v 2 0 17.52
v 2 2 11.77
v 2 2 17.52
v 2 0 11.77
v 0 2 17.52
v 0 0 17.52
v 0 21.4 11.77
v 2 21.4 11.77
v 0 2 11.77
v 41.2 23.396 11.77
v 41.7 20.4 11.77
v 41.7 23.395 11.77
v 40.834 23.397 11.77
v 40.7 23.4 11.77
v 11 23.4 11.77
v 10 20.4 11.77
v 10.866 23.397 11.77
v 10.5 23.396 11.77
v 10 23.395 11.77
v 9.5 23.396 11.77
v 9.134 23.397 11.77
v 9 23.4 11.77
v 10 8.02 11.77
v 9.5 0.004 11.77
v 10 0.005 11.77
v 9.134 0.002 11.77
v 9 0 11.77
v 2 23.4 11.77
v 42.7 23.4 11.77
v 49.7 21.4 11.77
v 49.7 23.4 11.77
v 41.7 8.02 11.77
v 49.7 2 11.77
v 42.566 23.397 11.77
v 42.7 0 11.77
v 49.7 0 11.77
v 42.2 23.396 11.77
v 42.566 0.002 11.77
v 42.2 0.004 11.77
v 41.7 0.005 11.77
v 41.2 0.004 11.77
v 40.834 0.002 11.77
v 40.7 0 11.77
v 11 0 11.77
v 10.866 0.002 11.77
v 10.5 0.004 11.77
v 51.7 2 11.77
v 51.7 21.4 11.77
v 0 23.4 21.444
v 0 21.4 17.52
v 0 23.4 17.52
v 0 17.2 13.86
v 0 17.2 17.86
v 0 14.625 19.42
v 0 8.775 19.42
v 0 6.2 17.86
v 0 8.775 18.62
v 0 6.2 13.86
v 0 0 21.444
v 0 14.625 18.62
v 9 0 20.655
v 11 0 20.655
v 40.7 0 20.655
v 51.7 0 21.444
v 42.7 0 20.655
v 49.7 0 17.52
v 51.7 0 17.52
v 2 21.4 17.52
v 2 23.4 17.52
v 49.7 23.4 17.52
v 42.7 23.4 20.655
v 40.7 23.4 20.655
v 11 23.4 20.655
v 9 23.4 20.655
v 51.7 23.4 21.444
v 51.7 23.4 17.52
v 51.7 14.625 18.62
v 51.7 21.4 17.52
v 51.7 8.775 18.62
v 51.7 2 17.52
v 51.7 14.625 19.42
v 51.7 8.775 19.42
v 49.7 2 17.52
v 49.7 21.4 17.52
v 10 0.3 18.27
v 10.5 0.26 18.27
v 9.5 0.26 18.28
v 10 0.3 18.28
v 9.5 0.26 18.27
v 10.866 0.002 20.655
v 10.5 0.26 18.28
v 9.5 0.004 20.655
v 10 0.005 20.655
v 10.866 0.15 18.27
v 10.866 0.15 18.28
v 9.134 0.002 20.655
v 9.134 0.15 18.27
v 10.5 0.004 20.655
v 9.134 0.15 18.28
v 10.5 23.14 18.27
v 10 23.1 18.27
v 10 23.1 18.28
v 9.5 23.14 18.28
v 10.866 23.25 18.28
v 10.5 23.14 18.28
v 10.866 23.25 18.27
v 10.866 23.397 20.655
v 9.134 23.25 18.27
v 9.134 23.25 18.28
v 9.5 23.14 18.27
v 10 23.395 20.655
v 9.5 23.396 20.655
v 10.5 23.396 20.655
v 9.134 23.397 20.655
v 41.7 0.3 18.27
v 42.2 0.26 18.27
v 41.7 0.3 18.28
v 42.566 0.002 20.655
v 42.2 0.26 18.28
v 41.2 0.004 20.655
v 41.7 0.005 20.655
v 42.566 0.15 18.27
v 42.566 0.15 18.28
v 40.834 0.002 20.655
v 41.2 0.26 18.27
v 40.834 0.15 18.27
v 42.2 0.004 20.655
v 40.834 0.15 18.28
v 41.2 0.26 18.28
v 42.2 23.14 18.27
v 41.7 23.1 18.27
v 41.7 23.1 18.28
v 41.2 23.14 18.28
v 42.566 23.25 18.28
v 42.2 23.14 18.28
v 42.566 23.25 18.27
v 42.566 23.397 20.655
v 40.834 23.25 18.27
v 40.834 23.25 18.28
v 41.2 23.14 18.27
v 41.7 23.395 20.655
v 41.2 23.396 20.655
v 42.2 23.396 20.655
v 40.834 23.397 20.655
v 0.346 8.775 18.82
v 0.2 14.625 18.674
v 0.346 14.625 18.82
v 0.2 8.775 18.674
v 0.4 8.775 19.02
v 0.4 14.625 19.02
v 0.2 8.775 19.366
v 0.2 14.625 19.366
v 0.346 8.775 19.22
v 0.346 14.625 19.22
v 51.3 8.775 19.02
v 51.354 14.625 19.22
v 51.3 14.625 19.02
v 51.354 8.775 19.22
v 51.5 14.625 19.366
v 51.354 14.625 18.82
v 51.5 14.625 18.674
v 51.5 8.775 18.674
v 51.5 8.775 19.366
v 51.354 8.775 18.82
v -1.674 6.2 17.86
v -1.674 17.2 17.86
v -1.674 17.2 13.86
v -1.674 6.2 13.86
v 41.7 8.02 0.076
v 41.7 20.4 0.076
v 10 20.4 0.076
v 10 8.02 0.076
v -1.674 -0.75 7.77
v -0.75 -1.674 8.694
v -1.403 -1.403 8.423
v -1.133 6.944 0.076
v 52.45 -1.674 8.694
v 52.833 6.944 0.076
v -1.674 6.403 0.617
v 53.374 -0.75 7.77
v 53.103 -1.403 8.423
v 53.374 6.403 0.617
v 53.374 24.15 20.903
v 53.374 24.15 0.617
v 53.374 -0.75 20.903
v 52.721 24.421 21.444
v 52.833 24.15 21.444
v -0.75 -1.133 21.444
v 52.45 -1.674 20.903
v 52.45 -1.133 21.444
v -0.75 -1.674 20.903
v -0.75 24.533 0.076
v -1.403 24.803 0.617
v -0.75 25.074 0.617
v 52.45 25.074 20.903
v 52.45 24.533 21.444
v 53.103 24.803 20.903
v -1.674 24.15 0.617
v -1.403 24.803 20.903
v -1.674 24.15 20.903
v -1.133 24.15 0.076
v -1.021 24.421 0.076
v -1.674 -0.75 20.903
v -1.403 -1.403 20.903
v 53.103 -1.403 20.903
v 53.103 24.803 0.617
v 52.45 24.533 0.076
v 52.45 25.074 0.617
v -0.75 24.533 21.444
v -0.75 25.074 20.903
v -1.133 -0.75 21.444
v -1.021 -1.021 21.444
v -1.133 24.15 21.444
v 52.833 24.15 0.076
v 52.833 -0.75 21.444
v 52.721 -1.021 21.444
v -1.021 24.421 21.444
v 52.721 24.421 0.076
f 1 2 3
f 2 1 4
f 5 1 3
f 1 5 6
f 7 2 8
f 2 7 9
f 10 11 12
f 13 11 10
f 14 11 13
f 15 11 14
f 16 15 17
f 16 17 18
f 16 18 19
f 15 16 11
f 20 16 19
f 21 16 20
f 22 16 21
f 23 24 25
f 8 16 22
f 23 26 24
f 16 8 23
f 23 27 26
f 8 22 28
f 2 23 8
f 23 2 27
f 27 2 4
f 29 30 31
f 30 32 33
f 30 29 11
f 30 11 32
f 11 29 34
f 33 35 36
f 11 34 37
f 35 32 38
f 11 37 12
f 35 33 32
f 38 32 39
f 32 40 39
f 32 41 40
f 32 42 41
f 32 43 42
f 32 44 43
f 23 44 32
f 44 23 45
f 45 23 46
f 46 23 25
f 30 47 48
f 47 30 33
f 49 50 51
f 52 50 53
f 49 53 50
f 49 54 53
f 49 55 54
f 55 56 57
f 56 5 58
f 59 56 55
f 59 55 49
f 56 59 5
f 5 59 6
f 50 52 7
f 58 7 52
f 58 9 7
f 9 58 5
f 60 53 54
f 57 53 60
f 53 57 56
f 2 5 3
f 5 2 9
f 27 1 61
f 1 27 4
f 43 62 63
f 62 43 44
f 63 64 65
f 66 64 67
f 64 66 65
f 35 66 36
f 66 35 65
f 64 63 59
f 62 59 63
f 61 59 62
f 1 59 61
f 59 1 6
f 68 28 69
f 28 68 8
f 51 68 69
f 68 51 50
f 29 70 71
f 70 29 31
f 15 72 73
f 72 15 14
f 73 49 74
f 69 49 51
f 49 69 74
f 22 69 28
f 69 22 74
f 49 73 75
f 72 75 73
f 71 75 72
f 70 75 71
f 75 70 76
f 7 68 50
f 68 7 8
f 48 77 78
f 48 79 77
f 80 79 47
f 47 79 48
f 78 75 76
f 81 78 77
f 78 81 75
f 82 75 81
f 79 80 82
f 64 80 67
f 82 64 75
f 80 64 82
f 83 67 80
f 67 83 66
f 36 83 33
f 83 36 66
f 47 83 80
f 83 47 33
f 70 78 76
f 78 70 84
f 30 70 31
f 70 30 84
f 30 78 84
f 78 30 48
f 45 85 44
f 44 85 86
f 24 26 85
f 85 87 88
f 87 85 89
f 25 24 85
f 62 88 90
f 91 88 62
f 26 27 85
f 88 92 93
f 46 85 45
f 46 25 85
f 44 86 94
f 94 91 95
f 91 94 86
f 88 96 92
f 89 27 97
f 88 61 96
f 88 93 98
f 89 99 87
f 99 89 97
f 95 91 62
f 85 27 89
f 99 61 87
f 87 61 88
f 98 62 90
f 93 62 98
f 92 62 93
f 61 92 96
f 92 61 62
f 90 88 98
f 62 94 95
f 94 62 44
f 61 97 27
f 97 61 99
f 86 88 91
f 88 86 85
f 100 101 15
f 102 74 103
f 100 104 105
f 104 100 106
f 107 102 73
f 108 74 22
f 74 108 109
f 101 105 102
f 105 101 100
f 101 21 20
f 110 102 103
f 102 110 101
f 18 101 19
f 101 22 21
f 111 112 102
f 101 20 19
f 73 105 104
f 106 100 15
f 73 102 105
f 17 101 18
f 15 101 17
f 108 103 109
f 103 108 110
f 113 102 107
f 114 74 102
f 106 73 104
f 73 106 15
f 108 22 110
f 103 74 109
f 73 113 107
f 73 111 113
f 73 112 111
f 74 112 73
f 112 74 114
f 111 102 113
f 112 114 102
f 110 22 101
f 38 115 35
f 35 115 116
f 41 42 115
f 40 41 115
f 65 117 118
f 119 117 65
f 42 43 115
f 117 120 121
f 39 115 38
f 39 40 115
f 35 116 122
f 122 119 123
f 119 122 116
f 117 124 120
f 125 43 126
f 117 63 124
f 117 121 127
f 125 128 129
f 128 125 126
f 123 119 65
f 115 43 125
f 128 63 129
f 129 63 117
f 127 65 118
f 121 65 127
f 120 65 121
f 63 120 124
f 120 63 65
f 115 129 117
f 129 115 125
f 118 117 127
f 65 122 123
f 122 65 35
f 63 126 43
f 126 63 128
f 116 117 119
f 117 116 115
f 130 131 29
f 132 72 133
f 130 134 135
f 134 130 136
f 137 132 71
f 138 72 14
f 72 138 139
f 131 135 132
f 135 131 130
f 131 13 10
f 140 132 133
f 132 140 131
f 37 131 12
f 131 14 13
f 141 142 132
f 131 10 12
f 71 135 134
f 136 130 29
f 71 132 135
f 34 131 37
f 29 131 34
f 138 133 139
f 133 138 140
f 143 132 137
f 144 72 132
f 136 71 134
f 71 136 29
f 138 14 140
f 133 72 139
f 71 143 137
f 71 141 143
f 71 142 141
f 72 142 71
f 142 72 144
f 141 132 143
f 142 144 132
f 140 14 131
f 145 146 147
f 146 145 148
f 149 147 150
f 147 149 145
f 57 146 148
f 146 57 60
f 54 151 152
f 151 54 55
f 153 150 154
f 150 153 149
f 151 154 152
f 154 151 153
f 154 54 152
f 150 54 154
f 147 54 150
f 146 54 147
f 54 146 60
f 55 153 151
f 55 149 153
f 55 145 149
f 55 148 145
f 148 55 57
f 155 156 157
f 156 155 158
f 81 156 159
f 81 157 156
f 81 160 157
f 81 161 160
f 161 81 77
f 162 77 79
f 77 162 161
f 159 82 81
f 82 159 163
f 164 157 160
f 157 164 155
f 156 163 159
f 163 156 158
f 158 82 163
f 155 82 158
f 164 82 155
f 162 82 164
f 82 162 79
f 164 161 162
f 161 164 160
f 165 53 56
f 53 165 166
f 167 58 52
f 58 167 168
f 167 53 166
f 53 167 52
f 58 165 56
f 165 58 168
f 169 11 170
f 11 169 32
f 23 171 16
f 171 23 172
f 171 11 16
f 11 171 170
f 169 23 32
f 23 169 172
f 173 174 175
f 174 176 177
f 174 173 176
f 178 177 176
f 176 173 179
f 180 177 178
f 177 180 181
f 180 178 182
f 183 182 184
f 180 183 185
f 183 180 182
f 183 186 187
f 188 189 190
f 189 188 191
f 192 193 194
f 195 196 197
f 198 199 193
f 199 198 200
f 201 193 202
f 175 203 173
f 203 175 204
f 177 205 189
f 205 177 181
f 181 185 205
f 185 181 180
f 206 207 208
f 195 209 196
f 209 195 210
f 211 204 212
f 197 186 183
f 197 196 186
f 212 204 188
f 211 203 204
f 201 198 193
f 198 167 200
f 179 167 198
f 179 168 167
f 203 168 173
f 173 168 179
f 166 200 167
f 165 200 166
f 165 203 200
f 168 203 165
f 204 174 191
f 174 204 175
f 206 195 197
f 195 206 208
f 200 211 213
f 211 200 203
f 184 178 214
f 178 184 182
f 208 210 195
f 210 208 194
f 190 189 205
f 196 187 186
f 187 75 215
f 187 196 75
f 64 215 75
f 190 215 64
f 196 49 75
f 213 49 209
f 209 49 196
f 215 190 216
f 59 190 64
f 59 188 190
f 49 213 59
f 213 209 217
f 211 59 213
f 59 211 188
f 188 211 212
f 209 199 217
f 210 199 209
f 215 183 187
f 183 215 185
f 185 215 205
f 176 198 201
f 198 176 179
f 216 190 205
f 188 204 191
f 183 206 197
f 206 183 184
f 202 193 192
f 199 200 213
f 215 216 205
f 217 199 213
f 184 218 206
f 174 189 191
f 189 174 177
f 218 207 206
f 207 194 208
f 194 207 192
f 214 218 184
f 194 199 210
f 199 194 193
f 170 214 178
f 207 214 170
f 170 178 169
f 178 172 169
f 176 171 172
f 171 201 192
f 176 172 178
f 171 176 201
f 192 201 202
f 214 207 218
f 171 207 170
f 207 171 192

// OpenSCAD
INNER_LENGTH   = 52.0  - .3;
INNER_WIDTH    = 23.5  - .1;
INNER_HEIGHT   =  9.0  + .75;

THICKNESS      =  1.5 +.25;
OUTER_HEIGHT   = (INNER_WIDTH  + THICKNESS*2) * 4 / 5;

PCB_THICKNESS  =  1.5;
CHAMFER        =  1.0;

PLUG_WIDTH     = 13.0 -2;
PLUG_THICKNESS =  4.0;
ATOM           =  0.01;

BORDER_X       = 10.0;
BORDER_Y       =  2.0;



PILLAR_SIDE    =  2.0;
PILLAR_HEIGHT  =  5.5  +.25;

FN             = 8;
PLAY           = .17;

module box() {
    d = THICKNESS-CHAMFER;
    hull()
    for (x=[-d, INNER_LENGTH + d]) {
        for (y=[-d, INNER_WIDTH + d]) {
            for (z=[CHAMFER, OUTER_HEIGHT - CHAMFER]) {
                translate([x, y, z])
                sphere(r=CHAMFER, $fn=FN);
            }
        }
    }
}

module chamber() {
    dy = INNER_WIDTH/2 -INNER_WIDTH/5;

    // for plug
    pz = PILLAR_HEIGHT - PLUG_THICKNESS + PLAY*2;
    translate([0, 0, OUTER_HEIGHT - INNER_HEIGHT])
    translate([-INNER_LENGTH/2, INNER_WIDTH/2 - PLUG_WIDTH/2, pz])
    cube([INNER_LENGTH, PLUG_WIDTH, PLUG_THICKNESS]);

    // for board
    translate([0, 0, OUTER_HEIGHT - INNER_HEIGHT])
    cube([INNER_LENGTH, INNER_WIDTH, INNER_HEIGHT]);

    // for bottom
    translate([BORDER_X, BORDER_Y + dy - BORDER_Y/2, -ATOM])
    //cube([INNER_LENGTH - 2*BORDER_X, INNER_WIDTH - 2*BORDER_Y, OUTER_HEIGHT + ATOM*2]);
    cube([INNER_LENGTH - 2*BORDER_X, INNER_WIDTH - 2*BORDER_Y -dy, OUTER_HEIGHT + ATOM*2]);

    if(0)
    translate([INNER_LENGTH/2, INNER_WIDTH/2, -ATOM])
    cylinder(d=INNER_WIDTH/2,h=OUTER_HEIGHT+ ATOM*2, $fn=60);

    
    // corner cut
    translate([0, dy , 0])
    rotate([-45, 0, 0])
    translate([-INNER_LENGTH, -INNER_WIDTH, -INNER_HEIGHT])
    cube([INNER_LENGTH*3, INNER_WIDTH, INNER_HEIGHT]);
}

module case() {
    difference() {
        box();
        chamber();
    }
    
    // pillars
    for (x=[0, INNER_LENGTH-PILLAR_SIDE]) {
        for (y=[0, INNER_WIDTH-PILLAR_SIDE]) {
            translate([x, y, OUTER_HEIGHT - INNER_HEIGHT])
            cube([PILLAR_SIDE, PILLAR_SIDE, PILLAR_HEIGHT]);
        }
    }
    
    // blockers
    BLOCKER_SIZE = 2;
    BLOCKER_THICKNESS = .6;
    BLOCKER_POS = 10;
    for (x=[BLOCKER_POS, INNER_LENGTH-BLOCKER_POS]) {
        for (y=[0, INNER_WIDTH]) {

            translate([x, y, OUTER_HEIGHT - INNER_HEIGHT])

            hull() {
                translate([0, 0, INNER_HEIGHT-THICKNESS/2])
                resize([BLOCKER_SIZE, , ATOM, ATOM])
                cylinder($fn=12);

                translate([0, 0, PILLAR_HEIGHT+PCB_THICKNESS/2])
                resize([BLOCKER_SIZE, BLOCKER_THICKNESS, ATOM])
                cylinder($fn=12);

                translate([0, 0, 0])
                resize([BLOCKER_SIZE, ATOM, ATOM])
                cylinder($fn=12);
            }
        }
    }
    
    // clip
    CYLINDER_RADIUS = .4;
    cl = INNER_WIDTH/4;
    cz = OUTER_HEIGHT - INNER_HEIGHT + PILLAR_HEIGHT + PCB_THICKNESS;
    for (x=[0, INNER_LENGTH]) {
        translate([x, (INNER_WIDTH-cl)/2, cz])
        rotate([-90, 0, 0])
        cylinder(r=CYLINDER_RADIUS, h = cl, $fn=12);
    }
}

case();

if (0)
  %translate([0, 0, THICKNESS])
  cube([INNER_LENGTH, INNER_WIDTH, INNER_HEIGHT]);

if (0) {
    l = INNER_LENGTH + THICKNESS*2;
    w = INNER_WIDTH  + THICKNESS*2;
    h = w;
    translate([-THICKNESS, -THICKNESS, 0])
    %cube([l, w, h]);
}
